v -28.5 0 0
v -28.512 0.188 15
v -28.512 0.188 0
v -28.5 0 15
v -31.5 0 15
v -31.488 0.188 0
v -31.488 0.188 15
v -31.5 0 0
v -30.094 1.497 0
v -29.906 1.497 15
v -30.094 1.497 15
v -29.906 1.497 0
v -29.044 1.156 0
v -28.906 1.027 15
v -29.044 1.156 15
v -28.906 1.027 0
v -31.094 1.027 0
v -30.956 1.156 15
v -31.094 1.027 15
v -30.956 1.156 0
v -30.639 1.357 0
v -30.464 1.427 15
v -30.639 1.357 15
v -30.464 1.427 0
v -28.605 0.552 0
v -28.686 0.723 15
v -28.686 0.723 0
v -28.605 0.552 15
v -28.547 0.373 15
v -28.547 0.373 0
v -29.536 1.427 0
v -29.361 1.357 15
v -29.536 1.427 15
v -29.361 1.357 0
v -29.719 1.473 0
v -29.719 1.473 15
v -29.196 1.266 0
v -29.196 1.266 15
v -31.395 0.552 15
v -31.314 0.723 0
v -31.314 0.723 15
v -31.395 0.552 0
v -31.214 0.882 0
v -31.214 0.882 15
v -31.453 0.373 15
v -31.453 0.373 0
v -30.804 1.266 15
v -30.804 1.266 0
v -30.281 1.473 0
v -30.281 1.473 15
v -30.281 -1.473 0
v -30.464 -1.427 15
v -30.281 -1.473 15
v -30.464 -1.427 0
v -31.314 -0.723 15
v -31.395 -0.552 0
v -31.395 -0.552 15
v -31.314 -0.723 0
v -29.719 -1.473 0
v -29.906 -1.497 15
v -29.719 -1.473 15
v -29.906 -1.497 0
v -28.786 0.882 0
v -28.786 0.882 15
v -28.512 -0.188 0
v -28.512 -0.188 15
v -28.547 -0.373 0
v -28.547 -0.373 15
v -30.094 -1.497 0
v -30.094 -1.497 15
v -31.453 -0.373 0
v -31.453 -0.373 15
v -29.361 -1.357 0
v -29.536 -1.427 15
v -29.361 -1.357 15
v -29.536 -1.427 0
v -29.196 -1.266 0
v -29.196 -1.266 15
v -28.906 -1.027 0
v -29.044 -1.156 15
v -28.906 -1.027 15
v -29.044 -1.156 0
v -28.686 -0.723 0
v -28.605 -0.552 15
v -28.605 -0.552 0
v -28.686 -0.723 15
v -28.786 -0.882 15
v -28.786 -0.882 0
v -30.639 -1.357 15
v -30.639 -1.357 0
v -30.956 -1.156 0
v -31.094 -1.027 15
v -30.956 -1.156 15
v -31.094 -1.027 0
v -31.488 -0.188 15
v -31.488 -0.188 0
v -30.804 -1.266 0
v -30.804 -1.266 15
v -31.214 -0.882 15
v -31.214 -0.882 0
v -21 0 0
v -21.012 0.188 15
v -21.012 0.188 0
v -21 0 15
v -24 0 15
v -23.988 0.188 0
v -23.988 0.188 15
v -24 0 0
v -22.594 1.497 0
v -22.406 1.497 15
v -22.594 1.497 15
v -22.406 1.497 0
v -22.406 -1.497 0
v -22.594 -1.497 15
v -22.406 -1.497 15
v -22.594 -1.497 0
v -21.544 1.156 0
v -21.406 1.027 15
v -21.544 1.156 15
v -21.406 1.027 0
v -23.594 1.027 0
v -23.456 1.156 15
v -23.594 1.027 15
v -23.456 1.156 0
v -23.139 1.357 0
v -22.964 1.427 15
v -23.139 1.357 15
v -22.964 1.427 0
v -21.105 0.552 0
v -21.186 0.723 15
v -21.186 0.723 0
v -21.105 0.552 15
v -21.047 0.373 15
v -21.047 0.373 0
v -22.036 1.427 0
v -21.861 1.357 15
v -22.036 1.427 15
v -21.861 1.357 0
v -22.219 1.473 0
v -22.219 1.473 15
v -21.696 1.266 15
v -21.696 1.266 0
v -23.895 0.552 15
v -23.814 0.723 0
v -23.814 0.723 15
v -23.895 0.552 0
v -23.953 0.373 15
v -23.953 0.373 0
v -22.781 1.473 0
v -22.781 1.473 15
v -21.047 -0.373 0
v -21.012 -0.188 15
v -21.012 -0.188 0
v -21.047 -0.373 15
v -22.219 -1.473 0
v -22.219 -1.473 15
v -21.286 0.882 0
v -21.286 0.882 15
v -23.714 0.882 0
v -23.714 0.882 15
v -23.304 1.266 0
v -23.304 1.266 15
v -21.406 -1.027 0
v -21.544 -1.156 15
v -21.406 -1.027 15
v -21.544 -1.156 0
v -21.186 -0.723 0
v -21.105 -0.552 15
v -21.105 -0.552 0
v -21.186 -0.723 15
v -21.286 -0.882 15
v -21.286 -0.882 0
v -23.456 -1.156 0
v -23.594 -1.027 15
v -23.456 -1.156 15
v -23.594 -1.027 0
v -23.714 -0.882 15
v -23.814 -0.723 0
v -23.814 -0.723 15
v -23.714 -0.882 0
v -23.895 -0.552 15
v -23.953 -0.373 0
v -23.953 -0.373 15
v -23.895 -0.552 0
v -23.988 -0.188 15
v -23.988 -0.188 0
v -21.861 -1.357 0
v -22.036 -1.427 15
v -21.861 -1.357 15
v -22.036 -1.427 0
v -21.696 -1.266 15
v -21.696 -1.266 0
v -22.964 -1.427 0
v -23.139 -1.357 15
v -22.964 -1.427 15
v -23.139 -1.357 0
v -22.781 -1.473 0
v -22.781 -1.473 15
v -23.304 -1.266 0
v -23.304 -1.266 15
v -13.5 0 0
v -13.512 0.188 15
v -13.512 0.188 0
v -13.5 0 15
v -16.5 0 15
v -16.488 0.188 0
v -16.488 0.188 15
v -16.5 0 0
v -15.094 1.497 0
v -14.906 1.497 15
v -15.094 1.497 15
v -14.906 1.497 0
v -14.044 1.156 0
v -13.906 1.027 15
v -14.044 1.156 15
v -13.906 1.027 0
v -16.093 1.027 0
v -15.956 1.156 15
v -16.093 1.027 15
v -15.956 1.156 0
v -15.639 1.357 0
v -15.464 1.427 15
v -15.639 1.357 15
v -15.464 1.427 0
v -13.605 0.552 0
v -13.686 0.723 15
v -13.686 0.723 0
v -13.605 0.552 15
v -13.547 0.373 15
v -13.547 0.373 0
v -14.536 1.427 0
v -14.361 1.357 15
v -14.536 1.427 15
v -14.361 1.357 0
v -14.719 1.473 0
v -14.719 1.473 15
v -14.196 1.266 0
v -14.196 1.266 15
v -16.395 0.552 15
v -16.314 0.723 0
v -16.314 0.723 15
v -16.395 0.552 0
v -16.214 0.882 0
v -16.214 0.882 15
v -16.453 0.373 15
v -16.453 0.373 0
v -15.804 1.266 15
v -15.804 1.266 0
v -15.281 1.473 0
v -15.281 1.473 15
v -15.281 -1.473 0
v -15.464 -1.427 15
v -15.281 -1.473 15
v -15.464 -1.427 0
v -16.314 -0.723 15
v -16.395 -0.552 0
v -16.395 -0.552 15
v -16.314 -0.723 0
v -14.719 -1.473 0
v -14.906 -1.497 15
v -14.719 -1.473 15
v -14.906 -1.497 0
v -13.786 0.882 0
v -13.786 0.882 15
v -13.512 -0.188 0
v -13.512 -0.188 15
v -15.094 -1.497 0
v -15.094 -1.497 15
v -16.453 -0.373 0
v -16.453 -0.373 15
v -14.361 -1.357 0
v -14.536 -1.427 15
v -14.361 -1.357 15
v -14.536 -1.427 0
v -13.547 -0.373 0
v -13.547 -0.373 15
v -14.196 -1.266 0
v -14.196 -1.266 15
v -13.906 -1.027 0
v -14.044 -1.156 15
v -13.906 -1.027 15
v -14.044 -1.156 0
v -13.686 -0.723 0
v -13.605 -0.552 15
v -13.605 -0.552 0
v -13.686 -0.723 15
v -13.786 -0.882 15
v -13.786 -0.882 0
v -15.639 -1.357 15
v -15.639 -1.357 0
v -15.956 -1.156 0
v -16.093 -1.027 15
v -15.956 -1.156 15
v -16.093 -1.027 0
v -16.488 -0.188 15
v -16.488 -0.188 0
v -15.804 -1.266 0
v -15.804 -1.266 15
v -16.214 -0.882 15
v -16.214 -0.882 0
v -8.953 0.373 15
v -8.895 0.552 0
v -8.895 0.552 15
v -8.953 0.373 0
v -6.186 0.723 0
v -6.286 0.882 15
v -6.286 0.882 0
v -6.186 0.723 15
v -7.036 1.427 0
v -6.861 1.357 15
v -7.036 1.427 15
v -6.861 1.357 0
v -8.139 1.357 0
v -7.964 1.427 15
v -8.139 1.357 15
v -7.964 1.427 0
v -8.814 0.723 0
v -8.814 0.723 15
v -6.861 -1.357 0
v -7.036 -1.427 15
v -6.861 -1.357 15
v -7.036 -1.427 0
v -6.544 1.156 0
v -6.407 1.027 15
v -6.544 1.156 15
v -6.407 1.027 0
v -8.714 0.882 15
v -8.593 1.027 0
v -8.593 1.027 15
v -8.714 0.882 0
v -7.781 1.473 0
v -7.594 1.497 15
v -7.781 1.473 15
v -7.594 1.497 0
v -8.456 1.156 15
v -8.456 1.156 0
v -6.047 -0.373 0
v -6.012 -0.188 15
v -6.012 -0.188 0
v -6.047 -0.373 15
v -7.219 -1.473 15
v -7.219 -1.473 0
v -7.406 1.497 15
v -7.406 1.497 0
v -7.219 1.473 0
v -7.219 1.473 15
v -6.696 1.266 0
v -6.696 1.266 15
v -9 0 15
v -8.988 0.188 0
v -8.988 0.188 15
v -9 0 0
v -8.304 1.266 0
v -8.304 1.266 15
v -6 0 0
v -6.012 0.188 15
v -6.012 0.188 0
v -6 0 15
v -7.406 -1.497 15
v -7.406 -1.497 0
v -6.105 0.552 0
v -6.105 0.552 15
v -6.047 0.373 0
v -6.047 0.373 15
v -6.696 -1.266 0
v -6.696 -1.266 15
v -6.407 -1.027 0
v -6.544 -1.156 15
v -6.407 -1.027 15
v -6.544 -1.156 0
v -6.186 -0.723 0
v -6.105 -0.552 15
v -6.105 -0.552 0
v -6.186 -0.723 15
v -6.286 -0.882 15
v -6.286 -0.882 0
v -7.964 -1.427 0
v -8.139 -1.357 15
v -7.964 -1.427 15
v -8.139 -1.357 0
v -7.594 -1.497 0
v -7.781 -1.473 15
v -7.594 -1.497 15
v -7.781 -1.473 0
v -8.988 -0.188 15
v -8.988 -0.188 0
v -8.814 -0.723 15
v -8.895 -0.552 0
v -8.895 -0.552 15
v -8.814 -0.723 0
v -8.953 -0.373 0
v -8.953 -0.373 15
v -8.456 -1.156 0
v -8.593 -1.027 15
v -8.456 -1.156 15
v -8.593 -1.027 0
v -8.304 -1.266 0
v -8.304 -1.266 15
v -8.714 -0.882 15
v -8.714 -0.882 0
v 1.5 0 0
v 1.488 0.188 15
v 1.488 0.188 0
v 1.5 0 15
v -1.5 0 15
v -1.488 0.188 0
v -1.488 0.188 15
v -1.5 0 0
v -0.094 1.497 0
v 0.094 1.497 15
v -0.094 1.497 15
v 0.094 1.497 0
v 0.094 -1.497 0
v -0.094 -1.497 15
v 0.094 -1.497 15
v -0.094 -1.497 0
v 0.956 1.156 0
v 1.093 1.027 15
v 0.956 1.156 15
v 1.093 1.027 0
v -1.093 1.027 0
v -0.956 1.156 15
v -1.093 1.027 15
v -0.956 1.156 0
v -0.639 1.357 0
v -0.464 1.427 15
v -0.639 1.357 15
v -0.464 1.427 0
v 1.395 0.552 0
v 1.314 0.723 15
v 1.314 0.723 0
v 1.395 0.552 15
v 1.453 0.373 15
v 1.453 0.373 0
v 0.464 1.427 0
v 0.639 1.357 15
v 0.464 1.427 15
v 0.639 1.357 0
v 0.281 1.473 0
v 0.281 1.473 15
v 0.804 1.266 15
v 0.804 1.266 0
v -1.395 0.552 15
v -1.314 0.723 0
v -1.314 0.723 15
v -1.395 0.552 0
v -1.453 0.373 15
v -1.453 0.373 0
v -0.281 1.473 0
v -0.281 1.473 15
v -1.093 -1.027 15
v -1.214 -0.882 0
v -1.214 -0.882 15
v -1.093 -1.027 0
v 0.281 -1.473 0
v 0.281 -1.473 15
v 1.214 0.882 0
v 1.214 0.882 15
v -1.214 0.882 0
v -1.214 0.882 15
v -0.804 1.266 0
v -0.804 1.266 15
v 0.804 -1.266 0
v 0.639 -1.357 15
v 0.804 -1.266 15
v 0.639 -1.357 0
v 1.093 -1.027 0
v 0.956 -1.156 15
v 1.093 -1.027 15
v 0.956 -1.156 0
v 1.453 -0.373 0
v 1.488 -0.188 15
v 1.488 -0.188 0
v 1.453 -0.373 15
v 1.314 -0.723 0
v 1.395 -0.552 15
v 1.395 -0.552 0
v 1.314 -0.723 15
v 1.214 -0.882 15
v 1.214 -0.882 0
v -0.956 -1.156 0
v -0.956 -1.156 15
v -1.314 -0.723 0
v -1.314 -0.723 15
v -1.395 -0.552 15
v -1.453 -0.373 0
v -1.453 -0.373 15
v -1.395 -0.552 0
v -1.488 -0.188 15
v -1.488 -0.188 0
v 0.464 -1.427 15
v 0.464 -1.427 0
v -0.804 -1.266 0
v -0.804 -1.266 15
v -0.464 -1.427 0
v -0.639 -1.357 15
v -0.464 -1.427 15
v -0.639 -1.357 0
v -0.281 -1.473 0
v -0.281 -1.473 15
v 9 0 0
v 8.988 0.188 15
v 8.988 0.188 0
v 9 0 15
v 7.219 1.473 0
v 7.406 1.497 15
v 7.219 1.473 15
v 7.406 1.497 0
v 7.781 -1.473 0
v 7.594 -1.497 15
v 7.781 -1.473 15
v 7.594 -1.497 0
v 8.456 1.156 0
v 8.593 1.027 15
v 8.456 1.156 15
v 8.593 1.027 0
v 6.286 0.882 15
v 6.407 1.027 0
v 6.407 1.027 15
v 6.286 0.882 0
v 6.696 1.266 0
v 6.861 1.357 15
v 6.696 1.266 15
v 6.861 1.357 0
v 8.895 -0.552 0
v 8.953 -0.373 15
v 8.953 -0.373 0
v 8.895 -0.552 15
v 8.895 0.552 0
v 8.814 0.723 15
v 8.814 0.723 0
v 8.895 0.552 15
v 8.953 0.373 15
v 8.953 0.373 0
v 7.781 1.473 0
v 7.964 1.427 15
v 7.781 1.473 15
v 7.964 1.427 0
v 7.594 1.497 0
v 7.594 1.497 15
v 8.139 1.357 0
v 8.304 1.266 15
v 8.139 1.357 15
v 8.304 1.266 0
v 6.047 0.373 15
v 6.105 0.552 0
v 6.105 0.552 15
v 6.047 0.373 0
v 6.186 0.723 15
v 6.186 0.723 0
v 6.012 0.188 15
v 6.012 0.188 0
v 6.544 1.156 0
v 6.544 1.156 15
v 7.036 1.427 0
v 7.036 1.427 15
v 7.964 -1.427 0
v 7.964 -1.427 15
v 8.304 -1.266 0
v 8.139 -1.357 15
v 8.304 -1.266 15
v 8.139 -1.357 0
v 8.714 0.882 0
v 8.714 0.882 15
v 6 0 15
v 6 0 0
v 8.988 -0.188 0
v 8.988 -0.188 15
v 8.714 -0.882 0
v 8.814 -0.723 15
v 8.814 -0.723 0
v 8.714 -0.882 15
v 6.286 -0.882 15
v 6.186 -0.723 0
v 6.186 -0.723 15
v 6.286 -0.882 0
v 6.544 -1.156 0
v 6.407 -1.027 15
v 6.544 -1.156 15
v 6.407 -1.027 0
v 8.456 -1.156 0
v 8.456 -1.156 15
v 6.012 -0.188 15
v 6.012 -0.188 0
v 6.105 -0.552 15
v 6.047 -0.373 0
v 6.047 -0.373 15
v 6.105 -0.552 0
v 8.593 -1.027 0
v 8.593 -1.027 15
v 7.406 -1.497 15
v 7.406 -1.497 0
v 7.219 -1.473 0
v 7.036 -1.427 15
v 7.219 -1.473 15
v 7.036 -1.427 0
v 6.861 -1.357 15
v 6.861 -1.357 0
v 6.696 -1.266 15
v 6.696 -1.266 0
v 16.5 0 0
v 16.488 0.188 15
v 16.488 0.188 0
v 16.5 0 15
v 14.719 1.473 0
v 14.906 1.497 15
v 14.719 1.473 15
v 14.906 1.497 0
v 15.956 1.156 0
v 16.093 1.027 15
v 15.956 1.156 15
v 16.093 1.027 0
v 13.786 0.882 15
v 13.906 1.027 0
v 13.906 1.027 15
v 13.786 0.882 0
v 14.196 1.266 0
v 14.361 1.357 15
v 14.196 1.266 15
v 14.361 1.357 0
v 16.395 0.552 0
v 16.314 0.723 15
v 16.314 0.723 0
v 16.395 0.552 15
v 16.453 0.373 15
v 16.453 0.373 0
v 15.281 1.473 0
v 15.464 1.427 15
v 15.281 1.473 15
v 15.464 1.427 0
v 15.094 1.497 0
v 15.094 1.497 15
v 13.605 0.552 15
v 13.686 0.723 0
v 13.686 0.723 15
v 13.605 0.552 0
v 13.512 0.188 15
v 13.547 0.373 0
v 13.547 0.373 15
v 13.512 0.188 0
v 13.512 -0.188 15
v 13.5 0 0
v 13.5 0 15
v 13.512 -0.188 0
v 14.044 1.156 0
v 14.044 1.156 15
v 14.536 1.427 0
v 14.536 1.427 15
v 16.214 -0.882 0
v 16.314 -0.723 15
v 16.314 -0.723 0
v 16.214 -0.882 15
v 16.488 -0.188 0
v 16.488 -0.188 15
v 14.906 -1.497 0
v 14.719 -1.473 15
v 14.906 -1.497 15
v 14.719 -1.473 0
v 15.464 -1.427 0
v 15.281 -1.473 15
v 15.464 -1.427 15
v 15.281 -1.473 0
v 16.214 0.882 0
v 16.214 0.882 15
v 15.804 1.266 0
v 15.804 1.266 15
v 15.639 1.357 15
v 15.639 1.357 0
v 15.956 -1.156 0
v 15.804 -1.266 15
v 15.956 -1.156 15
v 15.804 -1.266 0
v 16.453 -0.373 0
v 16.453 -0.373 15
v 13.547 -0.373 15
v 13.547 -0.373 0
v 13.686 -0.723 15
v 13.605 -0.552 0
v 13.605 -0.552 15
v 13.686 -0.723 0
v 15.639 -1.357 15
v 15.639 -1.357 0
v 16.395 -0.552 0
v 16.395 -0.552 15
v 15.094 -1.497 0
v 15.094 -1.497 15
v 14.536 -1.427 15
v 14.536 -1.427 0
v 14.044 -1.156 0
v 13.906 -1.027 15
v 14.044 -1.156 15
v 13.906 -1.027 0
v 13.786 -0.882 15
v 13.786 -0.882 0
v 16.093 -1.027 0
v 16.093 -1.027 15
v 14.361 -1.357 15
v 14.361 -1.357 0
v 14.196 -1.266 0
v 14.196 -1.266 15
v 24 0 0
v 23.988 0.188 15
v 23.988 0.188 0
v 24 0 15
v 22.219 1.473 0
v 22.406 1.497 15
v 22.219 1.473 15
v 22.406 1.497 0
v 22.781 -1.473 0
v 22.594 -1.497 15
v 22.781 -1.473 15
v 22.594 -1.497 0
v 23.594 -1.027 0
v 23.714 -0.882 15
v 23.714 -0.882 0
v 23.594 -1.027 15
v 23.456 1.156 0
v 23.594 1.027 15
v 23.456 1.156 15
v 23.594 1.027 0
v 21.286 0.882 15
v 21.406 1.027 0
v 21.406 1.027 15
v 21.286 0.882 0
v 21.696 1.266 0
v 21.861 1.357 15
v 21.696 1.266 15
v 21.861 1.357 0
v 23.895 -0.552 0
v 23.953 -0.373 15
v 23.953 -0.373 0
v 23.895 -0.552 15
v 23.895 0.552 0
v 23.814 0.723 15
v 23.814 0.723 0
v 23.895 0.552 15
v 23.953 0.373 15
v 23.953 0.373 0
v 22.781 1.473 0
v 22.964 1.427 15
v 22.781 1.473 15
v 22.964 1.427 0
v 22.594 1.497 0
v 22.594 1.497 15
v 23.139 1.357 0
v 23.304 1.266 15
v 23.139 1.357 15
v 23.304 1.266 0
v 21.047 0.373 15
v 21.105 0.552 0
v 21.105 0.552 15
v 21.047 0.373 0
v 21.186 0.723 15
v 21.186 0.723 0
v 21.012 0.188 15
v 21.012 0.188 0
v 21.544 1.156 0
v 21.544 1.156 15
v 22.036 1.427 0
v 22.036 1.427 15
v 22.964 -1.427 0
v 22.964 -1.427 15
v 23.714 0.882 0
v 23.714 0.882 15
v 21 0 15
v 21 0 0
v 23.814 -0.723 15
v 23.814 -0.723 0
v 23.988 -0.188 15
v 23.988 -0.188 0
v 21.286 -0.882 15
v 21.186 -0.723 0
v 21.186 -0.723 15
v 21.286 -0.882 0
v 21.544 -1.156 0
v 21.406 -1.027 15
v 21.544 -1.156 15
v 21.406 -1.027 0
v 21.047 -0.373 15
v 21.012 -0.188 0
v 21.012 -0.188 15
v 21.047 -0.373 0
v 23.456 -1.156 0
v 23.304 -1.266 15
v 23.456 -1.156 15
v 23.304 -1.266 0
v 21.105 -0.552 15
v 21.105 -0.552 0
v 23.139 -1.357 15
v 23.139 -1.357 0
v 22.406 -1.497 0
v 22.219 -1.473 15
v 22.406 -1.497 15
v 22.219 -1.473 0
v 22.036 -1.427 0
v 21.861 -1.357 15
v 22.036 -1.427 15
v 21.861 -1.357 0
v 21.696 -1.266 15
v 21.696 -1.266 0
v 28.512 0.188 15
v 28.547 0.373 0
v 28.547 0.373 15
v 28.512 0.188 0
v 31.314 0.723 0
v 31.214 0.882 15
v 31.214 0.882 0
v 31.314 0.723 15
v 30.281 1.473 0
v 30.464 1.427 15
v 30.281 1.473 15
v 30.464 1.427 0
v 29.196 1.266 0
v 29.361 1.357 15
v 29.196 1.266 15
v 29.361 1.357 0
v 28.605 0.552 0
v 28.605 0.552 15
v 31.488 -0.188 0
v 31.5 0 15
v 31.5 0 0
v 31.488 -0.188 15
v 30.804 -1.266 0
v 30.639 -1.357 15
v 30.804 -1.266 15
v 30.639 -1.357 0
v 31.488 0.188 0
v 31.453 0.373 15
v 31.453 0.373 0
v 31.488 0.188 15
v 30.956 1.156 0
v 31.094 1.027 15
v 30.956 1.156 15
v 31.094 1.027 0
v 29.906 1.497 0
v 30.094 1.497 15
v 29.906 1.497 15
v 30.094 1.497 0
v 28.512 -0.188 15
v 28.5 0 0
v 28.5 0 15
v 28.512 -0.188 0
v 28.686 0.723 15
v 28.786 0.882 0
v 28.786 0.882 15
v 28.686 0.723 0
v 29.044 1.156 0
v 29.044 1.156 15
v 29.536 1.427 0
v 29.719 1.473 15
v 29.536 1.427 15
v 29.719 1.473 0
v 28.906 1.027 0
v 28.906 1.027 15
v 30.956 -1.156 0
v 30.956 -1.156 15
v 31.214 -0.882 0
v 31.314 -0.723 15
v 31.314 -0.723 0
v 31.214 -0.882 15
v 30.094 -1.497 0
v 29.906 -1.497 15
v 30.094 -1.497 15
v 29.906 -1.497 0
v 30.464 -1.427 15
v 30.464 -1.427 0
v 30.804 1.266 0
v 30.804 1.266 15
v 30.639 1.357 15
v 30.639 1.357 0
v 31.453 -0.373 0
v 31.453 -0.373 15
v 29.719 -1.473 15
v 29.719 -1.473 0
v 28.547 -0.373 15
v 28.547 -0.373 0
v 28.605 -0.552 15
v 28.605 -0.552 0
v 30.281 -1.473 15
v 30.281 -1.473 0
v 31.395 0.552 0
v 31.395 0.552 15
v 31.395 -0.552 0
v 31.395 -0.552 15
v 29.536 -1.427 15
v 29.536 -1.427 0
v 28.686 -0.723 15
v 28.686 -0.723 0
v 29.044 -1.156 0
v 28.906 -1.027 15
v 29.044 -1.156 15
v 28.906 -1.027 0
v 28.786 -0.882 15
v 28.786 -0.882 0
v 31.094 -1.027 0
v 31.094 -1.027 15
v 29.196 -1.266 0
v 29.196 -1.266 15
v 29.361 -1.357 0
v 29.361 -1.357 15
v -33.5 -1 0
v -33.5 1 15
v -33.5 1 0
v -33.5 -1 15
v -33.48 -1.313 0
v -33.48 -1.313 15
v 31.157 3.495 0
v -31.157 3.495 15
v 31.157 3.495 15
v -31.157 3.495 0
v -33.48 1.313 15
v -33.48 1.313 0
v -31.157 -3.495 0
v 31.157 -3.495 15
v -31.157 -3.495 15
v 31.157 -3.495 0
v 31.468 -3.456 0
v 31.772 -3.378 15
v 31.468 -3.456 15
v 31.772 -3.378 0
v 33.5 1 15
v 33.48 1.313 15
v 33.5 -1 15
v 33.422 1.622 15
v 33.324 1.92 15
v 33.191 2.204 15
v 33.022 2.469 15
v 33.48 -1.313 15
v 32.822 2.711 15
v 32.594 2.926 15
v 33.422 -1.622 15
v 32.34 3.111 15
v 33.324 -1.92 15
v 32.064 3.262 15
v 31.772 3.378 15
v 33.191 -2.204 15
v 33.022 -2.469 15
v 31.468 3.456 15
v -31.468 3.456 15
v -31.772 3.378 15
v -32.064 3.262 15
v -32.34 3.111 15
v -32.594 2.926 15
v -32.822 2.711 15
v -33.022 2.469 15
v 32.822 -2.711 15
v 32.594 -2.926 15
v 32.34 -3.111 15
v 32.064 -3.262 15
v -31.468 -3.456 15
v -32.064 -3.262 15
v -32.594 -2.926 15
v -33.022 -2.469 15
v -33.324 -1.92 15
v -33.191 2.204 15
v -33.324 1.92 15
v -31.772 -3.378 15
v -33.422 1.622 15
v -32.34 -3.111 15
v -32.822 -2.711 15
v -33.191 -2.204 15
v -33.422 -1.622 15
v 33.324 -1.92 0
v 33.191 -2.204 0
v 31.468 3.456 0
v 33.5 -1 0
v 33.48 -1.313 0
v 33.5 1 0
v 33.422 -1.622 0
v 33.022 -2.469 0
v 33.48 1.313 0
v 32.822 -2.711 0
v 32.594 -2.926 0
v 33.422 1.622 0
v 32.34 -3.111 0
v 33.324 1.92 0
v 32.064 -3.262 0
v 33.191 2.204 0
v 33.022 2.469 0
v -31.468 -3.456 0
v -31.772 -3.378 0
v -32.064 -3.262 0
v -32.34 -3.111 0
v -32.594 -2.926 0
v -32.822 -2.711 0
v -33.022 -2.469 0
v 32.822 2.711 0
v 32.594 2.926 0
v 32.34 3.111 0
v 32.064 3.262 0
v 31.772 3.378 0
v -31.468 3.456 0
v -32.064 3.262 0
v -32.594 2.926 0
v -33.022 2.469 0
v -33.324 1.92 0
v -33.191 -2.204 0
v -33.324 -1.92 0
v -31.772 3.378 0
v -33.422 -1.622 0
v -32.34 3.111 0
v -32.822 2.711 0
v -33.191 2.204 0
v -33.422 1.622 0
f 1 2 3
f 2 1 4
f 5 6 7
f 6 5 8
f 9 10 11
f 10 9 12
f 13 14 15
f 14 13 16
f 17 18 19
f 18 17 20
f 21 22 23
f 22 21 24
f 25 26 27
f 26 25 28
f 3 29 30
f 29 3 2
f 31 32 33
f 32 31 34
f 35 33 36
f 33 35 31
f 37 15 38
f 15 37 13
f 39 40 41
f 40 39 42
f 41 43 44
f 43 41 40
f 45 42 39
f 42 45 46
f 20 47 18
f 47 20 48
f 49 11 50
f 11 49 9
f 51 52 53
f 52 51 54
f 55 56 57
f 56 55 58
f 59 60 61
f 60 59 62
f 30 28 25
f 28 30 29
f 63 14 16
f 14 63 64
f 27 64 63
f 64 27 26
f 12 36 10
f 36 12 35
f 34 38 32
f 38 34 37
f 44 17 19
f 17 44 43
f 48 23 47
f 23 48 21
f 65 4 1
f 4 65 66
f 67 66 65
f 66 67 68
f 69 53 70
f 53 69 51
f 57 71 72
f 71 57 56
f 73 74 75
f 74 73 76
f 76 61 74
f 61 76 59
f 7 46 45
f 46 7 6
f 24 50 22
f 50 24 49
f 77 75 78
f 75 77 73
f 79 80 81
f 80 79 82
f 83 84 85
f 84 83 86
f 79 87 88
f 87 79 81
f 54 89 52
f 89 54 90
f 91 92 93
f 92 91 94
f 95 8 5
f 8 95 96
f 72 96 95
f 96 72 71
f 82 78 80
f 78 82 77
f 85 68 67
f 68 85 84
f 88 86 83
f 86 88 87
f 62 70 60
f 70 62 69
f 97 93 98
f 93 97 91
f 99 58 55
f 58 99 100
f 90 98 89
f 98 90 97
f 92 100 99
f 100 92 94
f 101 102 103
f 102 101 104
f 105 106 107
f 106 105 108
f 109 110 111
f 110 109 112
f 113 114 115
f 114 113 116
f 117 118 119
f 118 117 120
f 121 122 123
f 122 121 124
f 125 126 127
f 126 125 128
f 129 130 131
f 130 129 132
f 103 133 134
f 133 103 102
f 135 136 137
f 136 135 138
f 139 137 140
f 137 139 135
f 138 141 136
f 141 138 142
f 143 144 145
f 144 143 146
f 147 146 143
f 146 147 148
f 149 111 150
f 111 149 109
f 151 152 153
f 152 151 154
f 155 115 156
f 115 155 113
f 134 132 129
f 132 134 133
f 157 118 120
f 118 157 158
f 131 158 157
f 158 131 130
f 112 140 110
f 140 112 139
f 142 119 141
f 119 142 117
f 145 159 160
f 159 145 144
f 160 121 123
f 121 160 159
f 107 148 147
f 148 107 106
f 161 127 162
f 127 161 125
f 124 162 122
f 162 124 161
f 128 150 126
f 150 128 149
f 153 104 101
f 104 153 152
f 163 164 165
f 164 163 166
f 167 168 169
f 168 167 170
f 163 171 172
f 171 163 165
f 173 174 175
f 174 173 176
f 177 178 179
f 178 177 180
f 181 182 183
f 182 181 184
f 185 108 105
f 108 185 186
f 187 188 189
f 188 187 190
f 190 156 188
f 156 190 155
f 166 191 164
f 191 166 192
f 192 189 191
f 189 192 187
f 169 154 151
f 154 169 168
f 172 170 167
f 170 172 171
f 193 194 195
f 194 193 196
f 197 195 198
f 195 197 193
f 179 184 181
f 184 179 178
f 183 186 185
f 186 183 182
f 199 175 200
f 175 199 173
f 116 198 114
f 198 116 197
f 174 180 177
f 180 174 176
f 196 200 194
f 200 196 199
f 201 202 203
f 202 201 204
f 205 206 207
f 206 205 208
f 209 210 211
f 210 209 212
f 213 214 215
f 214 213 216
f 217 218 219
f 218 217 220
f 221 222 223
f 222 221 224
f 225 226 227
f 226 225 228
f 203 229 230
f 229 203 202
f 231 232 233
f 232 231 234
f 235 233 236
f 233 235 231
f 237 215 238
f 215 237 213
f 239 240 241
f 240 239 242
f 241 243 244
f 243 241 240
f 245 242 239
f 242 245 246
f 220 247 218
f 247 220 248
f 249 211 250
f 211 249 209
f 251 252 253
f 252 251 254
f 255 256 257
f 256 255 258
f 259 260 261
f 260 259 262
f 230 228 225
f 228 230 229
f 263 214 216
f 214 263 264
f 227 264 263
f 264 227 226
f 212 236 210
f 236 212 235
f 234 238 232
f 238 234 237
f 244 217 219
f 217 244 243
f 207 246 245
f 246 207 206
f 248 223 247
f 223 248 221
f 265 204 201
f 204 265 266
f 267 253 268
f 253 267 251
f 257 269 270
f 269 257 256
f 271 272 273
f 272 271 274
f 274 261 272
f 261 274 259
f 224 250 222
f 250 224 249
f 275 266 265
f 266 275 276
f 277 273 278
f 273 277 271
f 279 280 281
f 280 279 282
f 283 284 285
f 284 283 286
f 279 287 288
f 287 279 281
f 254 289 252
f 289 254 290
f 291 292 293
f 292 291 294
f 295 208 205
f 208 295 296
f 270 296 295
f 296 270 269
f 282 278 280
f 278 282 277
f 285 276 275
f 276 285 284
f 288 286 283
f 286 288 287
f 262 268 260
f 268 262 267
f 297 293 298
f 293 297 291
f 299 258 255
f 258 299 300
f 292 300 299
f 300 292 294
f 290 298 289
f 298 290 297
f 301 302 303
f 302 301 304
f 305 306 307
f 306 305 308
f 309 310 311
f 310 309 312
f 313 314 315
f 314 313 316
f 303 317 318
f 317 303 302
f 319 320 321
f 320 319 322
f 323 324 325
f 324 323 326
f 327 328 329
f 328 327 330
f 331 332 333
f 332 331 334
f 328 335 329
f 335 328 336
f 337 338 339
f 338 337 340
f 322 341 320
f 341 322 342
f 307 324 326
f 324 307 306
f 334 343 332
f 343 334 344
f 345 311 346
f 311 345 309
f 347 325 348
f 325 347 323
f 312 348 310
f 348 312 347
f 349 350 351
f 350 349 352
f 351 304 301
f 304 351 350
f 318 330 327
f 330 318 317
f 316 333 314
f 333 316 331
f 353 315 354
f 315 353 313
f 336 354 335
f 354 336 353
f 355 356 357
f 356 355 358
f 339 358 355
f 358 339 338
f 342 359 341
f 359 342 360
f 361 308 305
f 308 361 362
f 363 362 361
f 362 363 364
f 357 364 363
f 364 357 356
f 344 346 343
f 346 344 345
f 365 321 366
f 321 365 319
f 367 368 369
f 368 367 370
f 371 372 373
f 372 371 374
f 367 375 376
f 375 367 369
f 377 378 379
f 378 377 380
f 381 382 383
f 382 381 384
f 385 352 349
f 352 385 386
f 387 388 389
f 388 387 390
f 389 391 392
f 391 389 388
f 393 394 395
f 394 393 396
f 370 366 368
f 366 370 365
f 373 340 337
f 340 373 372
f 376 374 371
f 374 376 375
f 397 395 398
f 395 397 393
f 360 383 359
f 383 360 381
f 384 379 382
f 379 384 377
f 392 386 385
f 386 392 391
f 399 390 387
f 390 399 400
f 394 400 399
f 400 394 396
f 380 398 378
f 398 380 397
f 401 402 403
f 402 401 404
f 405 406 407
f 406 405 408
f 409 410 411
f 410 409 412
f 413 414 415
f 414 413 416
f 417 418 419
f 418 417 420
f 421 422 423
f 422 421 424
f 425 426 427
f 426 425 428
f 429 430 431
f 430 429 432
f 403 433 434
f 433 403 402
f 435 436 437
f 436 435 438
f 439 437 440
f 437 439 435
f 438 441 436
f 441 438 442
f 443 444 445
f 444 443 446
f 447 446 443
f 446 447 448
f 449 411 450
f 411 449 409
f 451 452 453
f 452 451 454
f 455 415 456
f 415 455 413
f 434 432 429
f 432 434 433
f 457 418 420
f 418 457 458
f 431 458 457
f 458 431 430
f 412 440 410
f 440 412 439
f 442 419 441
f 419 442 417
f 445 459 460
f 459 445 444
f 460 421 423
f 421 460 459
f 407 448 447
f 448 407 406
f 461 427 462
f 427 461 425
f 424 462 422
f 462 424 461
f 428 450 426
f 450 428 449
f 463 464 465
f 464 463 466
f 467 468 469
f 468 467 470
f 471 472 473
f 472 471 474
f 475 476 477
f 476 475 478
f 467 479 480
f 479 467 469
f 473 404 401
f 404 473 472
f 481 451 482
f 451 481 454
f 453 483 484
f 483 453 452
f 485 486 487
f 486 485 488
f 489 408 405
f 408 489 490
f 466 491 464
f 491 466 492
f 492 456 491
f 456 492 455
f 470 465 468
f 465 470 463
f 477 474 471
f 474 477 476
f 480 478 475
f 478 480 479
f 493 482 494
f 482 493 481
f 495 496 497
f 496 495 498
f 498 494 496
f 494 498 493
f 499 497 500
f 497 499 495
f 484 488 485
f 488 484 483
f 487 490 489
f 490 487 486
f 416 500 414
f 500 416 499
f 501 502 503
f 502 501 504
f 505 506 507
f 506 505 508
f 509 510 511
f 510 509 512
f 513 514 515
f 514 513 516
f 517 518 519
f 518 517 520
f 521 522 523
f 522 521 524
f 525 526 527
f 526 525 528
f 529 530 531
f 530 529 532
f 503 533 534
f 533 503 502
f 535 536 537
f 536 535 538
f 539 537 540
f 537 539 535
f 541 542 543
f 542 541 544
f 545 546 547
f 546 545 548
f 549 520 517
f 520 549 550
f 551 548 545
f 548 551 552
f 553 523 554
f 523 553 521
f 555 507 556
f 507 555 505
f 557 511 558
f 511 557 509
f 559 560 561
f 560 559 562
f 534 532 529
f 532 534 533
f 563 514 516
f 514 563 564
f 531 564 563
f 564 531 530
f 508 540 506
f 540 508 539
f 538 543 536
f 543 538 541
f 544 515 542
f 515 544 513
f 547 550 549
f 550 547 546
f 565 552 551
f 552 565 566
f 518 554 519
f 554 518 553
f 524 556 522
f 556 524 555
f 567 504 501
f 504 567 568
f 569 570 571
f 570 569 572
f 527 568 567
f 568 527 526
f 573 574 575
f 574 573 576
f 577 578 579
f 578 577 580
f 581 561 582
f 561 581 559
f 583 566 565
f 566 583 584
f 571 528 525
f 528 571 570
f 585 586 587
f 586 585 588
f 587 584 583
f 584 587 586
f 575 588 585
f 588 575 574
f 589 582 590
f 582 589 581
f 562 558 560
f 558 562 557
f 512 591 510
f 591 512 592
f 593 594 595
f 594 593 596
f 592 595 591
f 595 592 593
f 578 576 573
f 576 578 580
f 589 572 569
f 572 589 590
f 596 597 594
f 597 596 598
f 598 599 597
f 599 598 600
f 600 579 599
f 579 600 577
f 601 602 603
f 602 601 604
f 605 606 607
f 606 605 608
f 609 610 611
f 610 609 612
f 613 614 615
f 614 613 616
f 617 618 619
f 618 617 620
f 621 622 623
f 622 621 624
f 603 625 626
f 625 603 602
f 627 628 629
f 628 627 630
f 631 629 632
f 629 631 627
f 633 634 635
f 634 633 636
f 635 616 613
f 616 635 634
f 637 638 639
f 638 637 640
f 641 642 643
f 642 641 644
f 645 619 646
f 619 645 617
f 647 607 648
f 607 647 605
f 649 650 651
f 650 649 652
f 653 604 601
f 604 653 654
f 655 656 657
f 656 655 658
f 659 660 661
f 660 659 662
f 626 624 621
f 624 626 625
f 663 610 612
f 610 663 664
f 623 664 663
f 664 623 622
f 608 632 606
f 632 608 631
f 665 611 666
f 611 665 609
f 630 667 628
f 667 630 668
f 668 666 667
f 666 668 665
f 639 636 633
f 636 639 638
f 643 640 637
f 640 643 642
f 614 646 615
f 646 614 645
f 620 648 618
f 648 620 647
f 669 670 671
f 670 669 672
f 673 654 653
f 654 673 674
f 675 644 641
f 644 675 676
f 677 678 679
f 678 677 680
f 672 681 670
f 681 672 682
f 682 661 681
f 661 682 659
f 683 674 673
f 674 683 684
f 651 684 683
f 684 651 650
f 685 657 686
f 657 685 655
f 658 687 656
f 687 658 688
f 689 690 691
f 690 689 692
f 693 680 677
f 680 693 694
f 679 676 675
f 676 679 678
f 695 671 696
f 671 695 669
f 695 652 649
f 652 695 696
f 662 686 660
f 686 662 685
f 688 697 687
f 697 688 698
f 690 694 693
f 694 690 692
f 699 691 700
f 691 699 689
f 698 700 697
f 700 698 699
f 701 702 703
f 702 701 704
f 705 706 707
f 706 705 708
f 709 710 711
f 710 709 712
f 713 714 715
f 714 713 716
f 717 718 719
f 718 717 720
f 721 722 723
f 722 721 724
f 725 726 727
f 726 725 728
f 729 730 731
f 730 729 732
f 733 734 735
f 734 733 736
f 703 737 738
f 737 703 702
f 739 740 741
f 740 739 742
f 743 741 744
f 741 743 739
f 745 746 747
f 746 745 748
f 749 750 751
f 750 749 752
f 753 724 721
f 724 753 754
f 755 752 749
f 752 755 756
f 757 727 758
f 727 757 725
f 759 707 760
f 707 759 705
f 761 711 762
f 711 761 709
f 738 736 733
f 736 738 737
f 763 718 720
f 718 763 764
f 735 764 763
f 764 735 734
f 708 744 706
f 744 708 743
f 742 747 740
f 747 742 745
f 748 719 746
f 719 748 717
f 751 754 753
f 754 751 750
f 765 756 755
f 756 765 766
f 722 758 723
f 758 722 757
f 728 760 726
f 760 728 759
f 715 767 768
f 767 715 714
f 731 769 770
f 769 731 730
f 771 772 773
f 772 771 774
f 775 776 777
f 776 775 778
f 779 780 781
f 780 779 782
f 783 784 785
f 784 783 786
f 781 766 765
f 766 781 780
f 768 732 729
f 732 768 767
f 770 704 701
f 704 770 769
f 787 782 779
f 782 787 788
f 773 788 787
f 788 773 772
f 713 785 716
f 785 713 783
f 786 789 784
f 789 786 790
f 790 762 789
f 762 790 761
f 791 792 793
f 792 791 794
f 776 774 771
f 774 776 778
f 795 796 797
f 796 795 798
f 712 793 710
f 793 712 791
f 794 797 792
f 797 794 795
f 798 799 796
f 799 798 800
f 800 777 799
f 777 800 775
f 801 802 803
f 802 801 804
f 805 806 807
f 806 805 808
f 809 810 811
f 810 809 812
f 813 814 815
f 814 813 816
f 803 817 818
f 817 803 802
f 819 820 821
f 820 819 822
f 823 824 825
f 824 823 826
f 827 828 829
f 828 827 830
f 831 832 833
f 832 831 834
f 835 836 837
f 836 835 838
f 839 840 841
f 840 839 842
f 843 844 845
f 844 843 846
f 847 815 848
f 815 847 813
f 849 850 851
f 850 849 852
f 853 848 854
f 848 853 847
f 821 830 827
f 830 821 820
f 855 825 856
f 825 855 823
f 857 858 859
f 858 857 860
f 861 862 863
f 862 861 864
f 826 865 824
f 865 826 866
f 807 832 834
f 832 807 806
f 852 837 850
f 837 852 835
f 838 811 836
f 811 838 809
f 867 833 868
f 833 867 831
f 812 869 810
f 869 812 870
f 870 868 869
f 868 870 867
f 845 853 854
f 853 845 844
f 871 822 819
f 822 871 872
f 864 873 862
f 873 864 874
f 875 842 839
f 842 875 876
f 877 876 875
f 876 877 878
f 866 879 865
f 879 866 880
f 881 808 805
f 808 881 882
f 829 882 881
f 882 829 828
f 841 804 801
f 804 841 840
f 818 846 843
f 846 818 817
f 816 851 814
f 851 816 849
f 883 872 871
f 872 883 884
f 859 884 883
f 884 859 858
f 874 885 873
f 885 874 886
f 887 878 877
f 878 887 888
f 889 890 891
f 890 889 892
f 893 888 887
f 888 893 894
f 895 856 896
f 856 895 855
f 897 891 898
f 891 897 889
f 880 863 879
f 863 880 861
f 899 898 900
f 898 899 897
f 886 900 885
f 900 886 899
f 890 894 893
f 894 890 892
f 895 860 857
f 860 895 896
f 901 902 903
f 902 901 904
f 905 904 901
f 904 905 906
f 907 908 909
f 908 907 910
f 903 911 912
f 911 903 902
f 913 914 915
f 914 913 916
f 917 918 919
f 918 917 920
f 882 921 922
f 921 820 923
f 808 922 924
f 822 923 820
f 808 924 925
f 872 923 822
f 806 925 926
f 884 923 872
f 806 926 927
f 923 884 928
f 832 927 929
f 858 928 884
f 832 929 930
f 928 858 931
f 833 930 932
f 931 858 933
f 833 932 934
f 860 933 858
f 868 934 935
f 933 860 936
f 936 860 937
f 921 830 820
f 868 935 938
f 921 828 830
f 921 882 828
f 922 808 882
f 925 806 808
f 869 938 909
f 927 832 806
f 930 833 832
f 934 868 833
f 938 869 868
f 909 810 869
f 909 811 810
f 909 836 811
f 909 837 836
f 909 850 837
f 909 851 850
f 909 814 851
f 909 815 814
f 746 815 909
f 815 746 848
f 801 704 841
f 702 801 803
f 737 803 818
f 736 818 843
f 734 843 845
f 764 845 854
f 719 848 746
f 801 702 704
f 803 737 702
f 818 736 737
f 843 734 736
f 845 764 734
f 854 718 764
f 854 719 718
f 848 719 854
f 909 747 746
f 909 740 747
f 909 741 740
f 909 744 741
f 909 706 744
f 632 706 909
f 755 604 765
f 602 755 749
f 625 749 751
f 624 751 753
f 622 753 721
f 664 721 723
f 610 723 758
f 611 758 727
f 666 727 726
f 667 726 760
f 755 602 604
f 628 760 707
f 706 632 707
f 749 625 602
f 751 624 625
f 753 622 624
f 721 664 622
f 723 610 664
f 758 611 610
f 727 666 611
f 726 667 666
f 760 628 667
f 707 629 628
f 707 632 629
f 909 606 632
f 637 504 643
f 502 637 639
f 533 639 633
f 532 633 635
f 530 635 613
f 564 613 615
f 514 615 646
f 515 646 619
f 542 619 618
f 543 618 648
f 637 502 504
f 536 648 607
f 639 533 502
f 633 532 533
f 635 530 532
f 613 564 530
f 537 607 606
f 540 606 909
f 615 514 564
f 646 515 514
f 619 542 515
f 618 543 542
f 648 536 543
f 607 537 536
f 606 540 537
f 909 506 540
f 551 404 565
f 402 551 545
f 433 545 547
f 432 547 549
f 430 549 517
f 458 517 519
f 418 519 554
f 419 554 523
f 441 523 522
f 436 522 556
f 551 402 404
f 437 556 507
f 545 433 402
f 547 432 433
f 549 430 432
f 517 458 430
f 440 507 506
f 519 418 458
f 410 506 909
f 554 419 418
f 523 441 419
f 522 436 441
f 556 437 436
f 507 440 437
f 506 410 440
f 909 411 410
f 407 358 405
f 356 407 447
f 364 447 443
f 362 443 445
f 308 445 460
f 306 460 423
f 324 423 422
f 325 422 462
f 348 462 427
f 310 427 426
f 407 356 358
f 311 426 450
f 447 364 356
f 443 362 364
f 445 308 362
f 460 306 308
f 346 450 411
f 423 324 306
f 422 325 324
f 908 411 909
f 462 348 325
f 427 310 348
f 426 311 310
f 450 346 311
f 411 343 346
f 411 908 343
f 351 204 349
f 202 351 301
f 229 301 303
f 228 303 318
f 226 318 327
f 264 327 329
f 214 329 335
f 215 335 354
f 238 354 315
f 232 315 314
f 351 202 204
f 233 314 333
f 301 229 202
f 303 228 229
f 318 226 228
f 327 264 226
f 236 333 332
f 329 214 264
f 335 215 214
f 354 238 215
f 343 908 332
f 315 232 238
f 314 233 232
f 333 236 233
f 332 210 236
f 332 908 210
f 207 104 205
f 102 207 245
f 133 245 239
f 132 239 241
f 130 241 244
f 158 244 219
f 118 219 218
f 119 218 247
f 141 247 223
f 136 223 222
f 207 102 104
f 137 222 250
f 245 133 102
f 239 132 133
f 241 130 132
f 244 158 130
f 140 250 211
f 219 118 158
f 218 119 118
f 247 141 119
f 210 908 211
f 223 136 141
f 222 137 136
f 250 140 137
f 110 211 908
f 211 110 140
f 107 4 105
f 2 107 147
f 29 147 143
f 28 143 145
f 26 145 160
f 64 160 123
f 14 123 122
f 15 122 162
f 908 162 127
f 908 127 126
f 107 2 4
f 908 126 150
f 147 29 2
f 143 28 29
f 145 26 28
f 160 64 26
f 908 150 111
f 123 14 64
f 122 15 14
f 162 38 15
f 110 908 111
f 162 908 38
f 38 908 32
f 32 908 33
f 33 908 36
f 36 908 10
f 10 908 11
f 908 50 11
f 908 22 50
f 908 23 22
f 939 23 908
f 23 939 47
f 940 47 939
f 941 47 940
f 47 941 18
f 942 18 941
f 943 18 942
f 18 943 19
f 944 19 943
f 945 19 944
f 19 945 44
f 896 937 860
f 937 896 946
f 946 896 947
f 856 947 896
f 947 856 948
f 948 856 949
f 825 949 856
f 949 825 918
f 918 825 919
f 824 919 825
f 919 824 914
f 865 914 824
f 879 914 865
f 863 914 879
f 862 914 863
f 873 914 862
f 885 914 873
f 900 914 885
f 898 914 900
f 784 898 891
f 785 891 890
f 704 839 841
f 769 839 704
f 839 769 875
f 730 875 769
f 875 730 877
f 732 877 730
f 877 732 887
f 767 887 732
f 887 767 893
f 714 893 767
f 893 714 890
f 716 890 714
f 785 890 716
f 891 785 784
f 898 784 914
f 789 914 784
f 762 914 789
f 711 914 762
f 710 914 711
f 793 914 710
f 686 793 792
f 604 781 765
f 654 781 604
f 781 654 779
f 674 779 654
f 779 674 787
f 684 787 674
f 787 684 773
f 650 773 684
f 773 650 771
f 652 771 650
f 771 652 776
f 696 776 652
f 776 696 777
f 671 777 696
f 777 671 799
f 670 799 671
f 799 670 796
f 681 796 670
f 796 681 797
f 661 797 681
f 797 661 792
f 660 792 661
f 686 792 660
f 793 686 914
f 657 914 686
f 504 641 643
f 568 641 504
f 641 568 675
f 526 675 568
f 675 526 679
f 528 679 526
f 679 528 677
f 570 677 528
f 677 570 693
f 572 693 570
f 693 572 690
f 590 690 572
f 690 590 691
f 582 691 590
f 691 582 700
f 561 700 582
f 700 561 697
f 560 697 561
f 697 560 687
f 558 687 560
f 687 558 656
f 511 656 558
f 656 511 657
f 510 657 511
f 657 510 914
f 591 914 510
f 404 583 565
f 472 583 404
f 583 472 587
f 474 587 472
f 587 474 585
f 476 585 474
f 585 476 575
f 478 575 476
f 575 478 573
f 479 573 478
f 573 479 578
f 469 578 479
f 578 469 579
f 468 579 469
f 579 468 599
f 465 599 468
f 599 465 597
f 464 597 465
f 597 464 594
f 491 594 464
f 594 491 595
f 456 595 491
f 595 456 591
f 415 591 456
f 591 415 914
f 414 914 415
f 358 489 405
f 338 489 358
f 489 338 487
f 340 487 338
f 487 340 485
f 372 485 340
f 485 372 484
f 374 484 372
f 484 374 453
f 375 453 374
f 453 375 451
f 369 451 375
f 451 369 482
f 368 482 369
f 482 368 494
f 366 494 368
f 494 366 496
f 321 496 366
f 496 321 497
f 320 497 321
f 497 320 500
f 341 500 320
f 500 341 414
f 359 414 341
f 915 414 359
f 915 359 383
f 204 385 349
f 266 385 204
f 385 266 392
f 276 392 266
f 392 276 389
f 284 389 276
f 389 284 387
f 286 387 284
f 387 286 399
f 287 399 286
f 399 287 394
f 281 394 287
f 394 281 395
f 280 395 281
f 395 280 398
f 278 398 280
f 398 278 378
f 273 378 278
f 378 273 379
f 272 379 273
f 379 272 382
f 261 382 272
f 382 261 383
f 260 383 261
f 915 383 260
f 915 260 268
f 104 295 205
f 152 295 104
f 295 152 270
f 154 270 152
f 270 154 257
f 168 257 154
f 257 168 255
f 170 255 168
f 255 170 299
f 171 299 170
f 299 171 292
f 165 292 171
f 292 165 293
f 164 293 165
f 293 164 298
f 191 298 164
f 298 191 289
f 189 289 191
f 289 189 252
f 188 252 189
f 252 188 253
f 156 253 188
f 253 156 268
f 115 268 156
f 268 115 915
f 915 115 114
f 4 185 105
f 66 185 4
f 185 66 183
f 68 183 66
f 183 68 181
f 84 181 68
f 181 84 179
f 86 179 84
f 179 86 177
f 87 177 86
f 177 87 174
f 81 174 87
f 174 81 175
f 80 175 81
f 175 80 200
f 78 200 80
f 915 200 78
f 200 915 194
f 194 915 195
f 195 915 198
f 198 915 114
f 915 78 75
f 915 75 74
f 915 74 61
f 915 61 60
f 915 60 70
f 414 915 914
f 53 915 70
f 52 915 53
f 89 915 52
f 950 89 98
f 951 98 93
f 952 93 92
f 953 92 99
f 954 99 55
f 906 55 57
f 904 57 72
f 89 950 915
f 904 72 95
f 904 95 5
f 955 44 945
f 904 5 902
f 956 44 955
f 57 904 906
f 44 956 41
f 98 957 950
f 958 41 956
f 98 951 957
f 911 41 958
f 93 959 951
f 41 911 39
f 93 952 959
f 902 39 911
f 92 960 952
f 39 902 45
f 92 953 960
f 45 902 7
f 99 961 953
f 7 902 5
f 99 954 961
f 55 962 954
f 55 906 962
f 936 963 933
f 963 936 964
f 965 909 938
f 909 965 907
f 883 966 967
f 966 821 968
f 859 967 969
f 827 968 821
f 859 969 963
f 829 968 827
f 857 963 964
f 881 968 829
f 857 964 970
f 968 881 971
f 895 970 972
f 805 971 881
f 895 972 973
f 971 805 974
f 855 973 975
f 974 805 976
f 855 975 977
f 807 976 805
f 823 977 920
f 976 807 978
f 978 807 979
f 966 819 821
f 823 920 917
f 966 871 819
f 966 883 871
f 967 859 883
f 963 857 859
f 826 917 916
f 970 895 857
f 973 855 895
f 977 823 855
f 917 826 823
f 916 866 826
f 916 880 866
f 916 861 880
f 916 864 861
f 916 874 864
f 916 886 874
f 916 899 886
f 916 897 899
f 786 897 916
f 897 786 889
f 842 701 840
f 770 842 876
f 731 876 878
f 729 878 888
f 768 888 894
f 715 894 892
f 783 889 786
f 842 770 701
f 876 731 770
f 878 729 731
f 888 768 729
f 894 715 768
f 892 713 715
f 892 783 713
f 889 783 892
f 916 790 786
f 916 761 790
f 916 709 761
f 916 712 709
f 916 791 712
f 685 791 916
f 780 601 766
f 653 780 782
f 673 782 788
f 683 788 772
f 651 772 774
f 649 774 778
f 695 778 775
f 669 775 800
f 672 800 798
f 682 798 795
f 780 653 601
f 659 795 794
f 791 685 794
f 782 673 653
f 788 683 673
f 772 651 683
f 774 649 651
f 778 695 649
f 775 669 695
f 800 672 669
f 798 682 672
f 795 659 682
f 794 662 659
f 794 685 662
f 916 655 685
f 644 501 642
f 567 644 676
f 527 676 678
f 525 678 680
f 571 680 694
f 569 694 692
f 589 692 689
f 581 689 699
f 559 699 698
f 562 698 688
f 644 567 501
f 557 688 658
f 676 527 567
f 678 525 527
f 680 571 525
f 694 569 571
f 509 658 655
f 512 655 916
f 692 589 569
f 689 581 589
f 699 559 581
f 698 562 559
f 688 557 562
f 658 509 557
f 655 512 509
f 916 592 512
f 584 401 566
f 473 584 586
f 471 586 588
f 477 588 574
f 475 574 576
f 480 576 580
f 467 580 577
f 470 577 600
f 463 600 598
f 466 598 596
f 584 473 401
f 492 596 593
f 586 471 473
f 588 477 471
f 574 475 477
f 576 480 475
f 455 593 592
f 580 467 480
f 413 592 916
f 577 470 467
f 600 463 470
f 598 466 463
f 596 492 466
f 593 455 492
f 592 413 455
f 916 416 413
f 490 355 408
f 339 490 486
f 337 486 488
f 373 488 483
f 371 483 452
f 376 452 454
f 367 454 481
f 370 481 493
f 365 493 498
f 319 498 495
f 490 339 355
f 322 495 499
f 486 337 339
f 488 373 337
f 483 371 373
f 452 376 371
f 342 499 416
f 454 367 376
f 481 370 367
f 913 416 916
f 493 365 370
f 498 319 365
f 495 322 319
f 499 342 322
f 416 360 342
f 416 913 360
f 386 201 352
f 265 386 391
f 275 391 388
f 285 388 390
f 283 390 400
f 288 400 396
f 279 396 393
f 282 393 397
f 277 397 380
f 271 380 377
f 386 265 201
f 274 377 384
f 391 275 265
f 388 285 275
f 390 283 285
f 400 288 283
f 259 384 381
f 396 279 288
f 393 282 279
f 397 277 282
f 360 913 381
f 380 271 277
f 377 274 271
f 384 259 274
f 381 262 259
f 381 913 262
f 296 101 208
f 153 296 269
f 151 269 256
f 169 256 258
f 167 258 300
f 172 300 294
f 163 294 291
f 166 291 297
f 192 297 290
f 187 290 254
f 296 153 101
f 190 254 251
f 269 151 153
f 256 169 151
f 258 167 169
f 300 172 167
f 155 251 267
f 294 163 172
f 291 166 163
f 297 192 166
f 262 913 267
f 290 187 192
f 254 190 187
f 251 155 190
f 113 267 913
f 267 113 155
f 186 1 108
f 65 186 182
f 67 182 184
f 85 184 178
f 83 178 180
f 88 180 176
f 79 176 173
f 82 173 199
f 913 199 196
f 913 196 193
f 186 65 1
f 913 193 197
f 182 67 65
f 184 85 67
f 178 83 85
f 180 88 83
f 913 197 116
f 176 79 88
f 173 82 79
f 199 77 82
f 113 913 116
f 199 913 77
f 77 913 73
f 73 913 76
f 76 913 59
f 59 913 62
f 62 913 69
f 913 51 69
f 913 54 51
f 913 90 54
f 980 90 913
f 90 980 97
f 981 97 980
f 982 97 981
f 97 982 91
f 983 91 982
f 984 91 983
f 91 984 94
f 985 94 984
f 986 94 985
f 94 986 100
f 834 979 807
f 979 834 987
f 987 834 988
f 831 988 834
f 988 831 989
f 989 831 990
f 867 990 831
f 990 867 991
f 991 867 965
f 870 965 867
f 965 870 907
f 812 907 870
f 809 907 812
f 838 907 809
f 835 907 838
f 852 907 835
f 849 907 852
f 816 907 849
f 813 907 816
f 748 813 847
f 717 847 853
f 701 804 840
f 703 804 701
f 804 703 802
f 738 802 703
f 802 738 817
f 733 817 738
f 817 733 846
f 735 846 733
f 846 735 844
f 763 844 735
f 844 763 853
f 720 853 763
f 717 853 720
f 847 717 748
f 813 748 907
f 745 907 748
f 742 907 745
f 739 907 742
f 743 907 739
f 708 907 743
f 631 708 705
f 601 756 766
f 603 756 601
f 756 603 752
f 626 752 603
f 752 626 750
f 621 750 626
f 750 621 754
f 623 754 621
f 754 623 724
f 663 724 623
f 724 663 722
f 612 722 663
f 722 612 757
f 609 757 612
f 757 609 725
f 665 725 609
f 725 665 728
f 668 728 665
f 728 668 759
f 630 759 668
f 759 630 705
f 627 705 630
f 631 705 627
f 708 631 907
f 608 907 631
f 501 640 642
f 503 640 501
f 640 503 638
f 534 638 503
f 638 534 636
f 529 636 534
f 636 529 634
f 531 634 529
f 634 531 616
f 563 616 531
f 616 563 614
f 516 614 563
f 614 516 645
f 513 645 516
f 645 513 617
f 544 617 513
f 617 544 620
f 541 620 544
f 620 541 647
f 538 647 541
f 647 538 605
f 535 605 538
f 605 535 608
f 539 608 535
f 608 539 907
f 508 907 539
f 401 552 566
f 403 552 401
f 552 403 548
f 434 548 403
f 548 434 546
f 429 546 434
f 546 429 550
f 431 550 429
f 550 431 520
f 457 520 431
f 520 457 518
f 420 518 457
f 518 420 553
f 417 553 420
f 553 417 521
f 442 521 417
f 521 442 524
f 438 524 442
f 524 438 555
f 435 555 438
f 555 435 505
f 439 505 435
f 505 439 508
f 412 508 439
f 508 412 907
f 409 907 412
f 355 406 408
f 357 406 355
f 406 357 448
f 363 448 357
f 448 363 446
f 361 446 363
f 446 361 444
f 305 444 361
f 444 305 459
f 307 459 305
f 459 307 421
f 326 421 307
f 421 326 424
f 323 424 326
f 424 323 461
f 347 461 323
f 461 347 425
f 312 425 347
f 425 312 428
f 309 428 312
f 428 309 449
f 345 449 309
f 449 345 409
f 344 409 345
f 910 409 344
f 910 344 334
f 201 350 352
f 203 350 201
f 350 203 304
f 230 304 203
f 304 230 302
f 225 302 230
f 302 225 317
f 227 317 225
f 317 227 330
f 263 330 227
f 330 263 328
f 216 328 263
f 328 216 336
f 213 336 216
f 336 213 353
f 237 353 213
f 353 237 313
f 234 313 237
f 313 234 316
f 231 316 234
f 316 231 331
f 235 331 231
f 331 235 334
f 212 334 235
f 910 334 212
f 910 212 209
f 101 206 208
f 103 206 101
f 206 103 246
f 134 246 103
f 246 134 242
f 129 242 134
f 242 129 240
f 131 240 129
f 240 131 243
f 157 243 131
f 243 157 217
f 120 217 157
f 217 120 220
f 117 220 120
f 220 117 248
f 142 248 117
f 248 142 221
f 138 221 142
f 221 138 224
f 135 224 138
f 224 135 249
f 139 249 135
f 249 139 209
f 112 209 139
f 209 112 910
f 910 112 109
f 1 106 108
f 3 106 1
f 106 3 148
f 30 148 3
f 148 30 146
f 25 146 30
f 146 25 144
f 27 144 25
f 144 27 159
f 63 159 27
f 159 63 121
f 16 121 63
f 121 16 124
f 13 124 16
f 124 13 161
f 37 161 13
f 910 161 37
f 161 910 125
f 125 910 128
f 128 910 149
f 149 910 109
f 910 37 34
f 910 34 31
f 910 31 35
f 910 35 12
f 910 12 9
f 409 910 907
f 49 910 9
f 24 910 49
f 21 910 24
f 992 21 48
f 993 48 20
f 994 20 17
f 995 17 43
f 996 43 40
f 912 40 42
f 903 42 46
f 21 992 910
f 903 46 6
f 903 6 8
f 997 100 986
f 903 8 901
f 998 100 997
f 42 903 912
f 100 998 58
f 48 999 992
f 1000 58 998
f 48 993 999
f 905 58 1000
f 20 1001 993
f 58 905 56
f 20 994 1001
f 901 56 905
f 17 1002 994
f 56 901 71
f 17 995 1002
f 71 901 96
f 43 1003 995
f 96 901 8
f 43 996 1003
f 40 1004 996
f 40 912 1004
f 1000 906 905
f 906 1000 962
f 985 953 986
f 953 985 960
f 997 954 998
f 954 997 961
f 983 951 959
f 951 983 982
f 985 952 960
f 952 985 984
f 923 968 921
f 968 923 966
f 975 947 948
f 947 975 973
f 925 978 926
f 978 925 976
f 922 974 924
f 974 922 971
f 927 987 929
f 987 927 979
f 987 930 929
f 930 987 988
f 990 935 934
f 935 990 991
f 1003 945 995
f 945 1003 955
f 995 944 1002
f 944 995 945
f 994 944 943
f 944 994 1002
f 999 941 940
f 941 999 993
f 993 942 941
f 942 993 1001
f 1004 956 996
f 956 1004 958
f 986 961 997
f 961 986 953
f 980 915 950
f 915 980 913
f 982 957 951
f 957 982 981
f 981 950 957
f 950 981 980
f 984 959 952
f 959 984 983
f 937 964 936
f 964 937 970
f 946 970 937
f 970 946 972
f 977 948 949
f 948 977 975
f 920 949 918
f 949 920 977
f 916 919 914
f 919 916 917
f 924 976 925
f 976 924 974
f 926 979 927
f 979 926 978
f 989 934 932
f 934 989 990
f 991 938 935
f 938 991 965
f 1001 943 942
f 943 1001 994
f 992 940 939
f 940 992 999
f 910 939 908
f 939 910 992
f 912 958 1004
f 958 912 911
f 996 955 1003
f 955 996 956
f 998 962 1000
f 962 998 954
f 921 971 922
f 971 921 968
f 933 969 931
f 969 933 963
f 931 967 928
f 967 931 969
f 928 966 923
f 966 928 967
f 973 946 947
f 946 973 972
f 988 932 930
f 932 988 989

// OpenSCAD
$fn = 50;


difference() {
	union() {
		translate(v = [0, 0, 0]) {
			rotate(a = [0, 0, 0]) {
				hull() {
					translate(v = [-31.0000000000, 1.0000000000, 0]) {
						rotate(a = [0, 0, 0]) {
							translate(v = [0, 0, 0]) {
								rotate(a = [0, 0, 0]) {
									cylinder(h = 15, r = 2.5000000000);
								}
							}
						}
					}
					translate(v = [31.0000000000, 1.0000000000, 0]) {
						rotate(a = [0, 0, 0]) {
							translate(v = [0, 0, 0]) {
								rotate(a = [0, 0, 0]) {
									cylinder(h = 15, r = 2.5000000000);
								}
							}
						}
					}
					translate(v = [-31.0000000000, -1.0000000000, 0]) {
						rotate(a = [0, 0, 0]) {
							translate(v = [0, 0, 0]) {
								rotate(a = [0, 0, 0]) {
									cylinder(h = 15, r = 2.5000000000);
								}
							}
						}
					}
					translate(v = [31.0000000000, -1.0000000000, 0]) {
						rotate(a = [0, 0, 0]) {
							translate(v = [0, 0, 0]) {
								rotate(a = [0, 0, 0]) {
									cylinder(h = 15, r = 2.5000000000);
								}
							}
						}
					}
				}
			}
		}
	}
	union() {
		translate(v = [-30.0000000000, 0.0000000000, 0]) {
			rotate(a = [0, 0, 0]) {
				translate(v = [0, 0, -50]) {
					rotate(a = [0, 0, 0]) {
						cylinder(h = 100, r = 1.5000000000);
					}
				}
			}
		}
		translate(v = [-22.5000000000, 0.0000000000, 0]) {
			rotate(a = [0, 0, 0]) {
				translate(v = [0, 0, -50]) {
					rotate(a = [0, 0, 0]) {
						cylinder(h = 100, r = 1.5000000000);
					}
				}
			}
		}
		translate(v = [-15.0000000000, 0.0000000000, 0]) {
			rotate(a = [0, 0, 0]) {
				translate(v = [0, 0, -50]) {
					rotate(a = [0, 0, 0]) {
						cylinder(h = 100, r = 1.5000000000);
					}
				}
			}
		}
		translate(v = [-7.5000000000, 0.0000000000, 0]) {
			rotate(a = [0, 0, 0]) {
				translate(v = [0, 0, -50]) {
					rotate(a = [0, 0, 0]) {
						cylinder(h = 100, r = 1.5000000000);
					}
				}
			}
		}
		translate(v = [0.0000000000, 0.0000000000, 0]) {
			rotate(a = [0, 0, 0]) {
				translate(v = [0, 0, -50]) {
					rotate(a = [0, 0, 0]) {
						cylinder(h = 100, r = 1.5000000000);
					}
				}
			}
		}
		translate(v = [7.5000000000, 0.0000000000, 0]) {
			rotate(a = [0, 0, 0]) {
				translate(v = [0, 0, -50]) {
					rotate(a = [0, 0, 0]) {
						cylinder(h = 100, r = 1.5000000000);
					}
				}
			}
		}
		translate(v = [15.0000000000, 0.0000000000, 0]) {
			rotate(a = [0, 0, 0]) {
				translate(v = [0, 0, -50]) {
					rotate(a = [0, 0, 0]) {
						cylinder(h = 100, r = 1.5000000000);
					}
				}
			}
		}
		translate(v = [22.5000000000, 0.0000000000, 0]) {
			rotate(a = [0, 0, 0]) {
				translate(v = [0, 0, -50]) {
					rotate(a = [0, 0, 0]) {
						cylinder(h = 100, r = 1.5000000000);
					}
				}
			}
		}
		translate(v = [30.0000000000, 0.0000000000, 0]) {
			rotate(a = [0, 0, 0]) {
				translate(v = [0, 0, -50]) {
					rotate(a = [0, 0, 0]) {
						cylinder(h = 100, r = 1.5000000000);
					}
				}
			}
		}
	}
}
